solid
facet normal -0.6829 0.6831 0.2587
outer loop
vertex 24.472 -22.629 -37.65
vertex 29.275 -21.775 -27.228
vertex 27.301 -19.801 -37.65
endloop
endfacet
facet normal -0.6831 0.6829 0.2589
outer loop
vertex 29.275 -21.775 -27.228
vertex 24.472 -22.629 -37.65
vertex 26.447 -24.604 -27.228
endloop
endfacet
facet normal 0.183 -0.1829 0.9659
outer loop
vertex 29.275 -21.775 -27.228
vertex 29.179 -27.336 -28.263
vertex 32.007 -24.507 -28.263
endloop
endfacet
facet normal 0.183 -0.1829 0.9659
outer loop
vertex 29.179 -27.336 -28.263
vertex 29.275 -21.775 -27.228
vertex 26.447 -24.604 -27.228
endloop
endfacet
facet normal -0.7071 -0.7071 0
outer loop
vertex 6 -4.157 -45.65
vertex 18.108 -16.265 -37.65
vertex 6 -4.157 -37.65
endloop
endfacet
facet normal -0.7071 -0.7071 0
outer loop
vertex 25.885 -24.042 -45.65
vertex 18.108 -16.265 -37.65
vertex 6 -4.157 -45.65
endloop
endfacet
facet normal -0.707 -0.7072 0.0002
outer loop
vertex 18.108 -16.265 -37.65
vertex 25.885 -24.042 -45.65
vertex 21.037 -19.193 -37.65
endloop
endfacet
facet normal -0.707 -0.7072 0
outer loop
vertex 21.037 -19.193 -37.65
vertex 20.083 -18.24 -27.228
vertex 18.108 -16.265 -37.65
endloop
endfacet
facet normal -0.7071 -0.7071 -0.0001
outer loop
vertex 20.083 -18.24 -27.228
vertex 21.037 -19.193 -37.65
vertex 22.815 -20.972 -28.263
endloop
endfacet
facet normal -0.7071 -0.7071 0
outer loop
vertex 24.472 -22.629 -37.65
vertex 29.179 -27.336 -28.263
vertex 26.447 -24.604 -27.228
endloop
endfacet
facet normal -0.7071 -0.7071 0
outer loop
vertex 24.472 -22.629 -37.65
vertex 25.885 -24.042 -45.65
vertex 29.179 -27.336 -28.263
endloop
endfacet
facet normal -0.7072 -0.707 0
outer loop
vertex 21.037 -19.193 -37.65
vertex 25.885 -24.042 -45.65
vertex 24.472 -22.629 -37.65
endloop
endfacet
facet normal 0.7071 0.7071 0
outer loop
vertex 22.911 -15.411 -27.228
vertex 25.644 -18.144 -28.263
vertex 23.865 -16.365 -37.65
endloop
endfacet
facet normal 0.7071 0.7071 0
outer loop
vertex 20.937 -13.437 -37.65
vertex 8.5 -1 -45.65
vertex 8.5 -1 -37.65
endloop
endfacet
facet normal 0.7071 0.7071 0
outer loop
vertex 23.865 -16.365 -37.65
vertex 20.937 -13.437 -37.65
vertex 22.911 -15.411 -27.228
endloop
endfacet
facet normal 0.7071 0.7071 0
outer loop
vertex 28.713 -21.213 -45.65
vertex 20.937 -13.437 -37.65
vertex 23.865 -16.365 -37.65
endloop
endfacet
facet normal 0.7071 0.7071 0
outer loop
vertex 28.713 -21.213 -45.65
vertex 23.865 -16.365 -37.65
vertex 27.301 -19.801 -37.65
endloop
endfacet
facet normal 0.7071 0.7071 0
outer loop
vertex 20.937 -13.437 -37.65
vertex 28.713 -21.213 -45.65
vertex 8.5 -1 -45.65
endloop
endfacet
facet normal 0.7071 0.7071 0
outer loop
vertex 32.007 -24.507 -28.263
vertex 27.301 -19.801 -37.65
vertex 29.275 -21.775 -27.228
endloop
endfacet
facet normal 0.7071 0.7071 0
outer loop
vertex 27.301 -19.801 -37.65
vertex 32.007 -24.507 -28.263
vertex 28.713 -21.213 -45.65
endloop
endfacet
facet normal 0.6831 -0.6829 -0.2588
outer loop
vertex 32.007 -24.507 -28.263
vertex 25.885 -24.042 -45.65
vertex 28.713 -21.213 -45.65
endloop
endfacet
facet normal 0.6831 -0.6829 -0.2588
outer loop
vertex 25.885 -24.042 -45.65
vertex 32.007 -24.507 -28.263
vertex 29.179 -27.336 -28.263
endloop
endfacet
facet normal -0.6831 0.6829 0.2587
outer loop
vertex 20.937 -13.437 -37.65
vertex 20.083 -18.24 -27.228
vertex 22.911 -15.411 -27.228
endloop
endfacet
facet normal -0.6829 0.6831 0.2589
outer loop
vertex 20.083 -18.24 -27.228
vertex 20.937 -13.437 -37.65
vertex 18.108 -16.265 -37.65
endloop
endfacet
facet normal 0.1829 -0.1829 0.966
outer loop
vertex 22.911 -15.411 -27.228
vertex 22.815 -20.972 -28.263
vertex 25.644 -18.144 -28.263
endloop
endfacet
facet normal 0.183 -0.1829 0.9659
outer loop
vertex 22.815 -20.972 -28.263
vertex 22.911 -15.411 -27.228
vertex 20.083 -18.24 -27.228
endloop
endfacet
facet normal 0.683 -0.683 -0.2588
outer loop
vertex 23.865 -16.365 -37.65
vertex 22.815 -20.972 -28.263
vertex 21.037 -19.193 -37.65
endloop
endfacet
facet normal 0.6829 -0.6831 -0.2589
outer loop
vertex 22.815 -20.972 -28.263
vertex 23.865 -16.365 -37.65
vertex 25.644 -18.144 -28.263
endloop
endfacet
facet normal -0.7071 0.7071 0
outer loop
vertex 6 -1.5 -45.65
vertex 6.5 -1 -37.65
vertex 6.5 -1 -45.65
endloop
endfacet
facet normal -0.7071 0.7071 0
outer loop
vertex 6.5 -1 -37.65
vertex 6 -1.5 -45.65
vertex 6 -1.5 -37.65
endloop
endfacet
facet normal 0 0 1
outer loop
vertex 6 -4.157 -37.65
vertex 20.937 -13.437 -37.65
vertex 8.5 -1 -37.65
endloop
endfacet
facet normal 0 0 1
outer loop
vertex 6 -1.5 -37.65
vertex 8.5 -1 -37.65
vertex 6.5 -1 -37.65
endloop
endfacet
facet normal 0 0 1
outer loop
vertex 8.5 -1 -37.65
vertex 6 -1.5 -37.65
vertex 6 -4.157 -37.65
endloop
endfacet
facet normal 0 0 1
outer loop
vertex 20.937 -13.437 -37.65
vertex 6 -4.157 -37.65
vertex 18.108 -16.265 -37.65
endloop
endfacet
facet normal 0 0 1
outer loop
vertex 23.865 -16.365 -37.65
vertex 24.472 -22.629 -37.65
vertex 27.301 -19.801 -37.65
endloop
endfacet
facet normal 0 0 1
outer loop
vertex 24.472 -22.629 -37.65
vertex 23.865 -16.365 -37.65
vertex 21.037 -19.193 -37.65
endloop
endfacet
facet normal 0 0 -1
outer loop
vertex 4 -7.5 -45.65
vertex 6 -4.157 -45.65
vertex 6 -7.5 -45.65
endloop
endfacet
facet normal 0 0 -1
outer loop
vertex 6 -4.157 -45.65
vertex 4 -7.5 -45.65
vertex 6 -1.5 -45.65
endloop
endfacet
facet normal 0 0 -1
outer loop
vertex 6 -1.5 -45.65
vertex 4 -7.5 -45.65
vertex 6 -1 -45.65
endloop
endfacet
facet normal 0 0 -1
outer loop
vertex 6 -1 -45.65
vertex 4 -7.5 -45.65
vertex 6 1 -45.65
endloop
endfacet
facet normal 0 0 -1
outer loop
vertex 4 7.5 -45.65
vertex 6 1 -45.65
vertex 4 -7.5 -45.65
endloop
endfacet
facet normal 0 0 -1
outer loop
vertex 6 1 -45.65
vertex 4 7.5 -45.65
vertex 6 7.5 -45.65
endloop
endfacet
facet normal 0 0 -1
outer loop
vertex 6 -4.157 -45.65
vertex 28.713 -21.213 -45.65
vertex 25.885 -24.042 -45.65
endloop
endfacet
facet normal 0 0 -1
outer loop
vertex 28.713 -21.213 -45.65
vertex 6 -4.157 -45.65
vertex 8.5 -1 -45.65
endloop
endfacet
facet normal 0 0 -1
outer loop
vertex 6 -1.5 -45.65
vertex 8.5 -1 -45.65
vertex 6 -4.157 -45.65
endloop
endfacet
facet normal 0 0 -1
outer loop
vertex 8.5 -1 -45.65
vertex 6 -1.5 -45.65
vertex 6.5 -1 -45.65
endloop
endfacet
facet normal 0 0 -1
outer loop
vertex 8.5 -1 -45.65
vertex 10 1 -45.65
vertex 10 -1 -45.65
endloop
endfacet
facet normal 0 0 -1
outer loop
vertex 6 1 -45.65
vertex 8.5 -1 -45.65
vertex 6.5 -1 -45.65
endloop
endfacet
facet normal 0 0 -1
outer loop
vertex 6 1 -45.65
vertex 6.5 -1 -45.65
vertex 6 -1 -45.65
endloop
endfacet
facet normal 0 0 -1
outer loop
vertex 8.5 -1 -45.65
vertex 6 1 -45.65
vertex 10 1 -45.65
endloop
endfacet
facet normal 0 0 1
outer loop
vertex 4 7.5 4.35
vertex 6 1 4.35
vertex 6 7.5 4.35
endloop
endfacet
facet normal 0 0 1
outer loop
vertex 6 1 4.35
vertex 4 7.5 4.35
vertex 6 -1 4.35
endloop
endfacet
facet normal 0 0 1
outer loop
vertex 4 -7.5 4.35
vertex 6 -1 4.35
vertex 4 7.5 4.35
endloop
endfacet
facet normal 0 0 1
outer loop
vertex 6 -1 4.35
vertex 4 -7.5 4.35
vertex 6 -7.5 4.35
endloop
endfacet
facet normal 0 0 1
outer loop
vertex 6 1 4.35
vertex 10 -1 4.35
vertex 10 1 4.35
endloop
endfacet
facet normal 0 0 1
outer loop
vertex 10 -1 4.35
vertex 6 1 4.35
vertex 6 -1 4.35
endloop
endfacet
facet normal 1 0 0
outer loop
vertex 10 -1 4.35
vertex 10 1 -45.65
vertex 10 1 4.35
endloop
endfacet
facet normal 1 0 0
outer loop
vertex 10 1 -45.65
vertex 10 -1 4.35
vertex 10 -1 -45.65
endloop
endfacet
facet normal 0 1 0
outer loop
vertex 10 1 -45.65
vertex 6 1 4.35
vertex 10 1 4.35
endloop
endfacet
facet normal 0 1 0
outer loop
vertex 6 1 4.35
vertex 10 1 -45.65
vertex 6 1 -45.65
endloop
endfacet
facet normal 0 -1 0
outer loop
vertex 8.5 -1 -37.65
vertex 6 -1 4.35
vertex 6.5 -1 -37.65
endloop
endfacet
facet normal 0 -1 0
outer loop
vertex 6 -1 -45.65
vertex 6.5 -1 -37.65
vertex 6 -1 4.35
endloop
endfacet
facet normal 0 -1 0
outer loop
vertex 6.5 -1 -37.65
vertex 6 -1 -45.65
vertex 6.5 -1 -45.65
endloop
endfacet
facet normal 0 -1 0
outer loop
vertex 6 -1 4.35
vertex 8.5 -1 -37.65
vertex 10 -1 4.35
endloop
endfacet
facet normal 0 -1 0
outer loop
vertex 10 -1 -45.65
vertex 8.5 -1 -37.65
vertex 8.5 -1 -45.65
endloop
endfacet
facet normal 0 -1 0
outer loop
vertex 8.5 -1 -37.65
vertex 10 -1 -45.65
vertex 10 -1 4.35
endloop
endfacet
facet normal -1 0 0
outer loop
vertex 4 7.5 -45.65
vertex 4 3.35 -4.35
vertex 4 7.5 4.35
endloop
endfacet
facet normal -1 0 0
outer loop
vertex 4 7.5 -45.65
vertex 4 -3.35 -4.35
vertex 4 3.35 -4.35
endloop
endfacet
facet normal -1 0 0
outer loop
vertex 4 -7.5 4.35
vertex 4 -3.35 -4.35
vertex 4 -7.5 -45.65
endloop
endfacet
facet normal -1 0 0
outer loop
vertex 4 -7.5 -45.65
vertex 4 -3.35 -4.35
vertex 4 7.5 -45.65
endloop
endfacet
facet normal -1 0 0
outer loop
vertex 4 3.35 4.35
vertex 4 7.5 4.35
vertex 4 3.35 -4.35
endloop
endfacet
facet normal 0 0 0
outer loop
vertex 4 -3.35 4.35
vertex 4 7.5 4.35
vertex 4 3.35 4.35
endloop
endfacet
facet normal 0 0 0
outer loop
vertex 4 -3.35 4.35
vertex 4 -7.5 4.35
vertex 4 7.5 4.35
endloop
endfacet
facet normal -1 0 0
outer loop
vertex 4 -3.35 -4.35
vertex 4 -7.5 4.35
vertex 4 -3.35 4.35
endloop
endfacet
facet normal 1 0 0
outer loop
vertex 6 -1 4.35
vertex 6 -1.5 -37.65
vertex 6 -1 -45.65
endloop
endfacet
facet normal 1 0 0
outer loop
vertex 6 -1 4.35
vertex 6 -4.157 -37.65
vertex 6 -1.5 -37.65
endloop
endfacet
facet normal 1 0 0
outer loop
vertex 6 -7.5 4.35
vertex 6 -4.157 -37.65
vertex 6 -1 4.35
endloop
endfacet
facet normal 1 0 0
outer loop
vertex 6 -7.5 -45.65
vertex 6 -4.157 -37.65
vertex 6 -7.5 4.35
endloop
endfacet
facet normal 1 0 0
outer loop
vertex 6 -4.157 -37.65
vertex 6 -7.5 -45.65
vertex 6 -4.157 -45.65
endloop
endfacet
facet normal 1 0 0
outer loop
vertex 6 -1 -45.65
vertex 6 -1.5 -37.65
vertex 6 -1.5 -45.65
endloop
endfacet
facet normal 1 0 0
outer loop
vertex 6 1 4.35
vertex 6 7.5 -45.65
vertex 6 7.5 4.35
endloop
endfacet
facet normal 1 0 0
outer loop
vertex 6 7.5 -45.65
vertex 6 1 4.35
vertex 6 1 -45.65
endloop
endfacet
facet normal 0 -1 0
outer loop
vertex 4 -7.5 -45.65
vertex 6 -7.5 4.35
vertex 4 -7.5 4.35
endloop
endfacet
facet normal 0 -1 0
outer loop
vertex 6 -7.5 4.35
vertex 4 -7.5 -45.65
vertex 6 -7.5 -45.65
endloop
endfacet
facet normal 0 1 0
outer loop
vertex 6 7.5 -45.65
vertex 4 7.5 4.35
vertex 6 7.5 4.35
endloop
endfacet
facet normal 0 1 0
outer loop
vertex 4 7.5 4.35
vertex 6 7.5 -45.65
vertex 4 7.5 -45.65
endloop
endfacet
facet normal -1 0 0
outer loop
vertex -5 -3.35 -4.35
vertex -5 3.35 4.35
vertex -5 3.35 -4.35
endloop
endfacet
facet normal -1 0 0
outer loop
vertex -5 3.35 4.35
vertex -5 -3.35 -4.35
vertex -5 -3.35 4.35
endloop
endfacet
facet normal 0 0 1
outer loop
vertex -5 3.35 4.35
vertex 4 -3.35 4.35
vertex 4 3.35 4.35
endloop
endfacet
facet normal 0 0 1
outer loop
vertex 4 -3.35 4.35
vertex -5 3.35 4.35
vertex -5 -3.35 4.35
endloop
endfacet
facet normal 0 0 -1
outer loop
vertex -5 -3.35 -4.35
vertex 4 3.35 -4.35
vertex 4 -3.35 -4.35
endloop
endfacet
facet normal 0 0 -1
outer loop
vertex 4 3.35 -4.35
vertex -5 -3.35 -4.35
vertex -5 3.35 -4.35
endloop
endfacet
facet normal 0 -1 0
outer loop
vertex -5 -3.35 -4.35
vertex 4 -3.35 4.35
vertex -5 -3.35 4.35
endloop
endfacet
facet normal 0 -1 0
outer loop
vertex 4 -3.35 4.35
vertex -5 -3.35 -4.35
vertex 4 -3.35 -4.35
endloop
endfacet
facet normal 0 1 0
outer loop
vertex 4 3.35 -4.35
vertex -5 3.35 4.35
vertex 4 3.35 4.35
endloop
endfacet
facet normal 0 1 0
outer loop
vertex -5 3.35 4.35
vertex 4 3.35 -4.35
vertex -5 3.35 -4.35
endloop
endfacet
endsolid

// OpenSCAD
include <../../lib/relativity.scad/relativity.scad> // https://github.com/davidson16807/relativity.scad

length = 30;
depth = 15;
height = 50;
thickness = 2;
$fn = 30;

// mirror(x)
box([10, 6.7, 8.7])
align(x+z)
box([2, depth, height], anchor=z) 
box([5, 2, height], anchor=-x)
{
  align(-z) rotated(-z*45) box([length, 4, 8], anchor=-x+y-z)
      translated(-x*9, n=[0,1]) align(x-y-z) rotated(y*15) box([4, 4, 18], anchor=x-y-z);
}
